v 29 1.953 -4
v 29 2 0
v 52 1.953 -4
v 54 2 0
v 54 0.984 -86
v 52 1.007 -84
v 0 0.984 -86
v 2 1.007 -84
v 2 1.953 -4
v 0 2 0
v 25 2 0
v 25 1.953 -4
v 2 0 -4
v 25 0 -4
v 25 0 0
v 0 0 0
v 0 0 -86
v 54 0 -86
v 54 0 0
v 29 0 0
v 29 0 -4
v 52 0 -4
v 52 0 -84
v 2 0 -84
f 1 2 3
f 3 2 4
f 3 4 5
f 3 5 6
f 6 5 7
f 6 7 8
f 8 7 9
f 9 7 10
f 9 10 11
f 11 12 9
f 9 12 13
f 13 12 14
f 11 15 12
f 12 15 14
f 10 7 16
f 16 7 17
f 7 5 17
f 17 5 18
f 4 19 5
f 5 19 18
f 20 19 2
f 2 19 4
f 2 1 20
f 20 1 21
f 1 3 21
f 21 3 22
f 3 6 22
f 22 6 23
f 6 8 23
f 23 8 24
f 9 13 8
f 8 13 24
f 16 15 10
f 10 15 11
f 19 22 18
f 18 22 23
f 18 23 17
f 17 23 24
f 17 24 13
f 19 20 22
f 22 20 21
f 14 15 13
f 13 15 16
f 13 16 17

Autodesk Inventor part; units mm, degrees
ref_plane "YZ Plane" through (0, 0, 0) normal (1, 0, 0) x (0, 1, 0)
ref_plane "XZ Plane" through (0, 0, 0) normal (0, 1, 0) x (-1, 0, 0)
ref_plane "XY Plane" through (0, 0, 0) normal (0, 0, 1) x (1, 0, 0)
sketch "Sketch1" plane through (0, 0, 0) normal (0, 1, 0) x (-1, 0, 0)
  line L0 (-54, 0) -> (-54, -86)
  line L1 (-54, -86) -> (0, -86)
  line L2 (0, -86) -> (0, 0)
  line L3 (0, 0) -> (-2, 0) construction
  line L4 (-2, 0) -> (-2, -4) construction
  line L5 (0, -86) -> (0, -84) construction
  line L6 (-52, -4) -> (-52, -84)
  line L7 (-52, -84) -> (-2, -84)
  line L8 (-2, -84) -> (-2, -4)
  line L9 (-25, 0) -> (-25, -4)
  line L10 (-29, 0) -> (-29, -4)
  line L11 (-2, -4) -> (-25, -4)
  line L12 (-29, -4) -> (-52, -4)
  line L13 (0, 0) -> (-25, 0)
  line L14 (-29, 0) -> (-54, 0)
  point P0 (-25, -2)
  dimension "d1" = 54
  dimension "d2" = 86
  dimension "d3" = 2
  dimension "d4" = 4
  dimension "d5" = 2
  dimension "d6" = 50
  dimension "d7" = 25
  dimension "d8" = 29
extrude "Extrusion1" add sketch "Sketch1" along normal blind 2
ref_plane "Work Plane1" through (0, 2, 0) normal (0, 0.9999, -0.0118) x (1, 0, 0)
sketch "Sketch2" plane through (0, 2, 0) normal (0, 0.9999, -0.0118) x (1, 0, 0)
  line L0 (-35.8906, -24.3728) -> (94.8707, -24.3728)
  line L1 (94.8707, -24.3728) -> (94.8707, 112.0739)
  line L2 (94.8707, 112.0739) -> (-35.8906, 112.0739)
  line L3 (-35.8906, 112.0739) -> (-35.8906, -24.3728)
  point P0 (0, 0.0236)
extrude "Extrusion2" cut sketch "Sketch2" along normal blind 8.25
properties part number "wing0.3.1_conductive"
